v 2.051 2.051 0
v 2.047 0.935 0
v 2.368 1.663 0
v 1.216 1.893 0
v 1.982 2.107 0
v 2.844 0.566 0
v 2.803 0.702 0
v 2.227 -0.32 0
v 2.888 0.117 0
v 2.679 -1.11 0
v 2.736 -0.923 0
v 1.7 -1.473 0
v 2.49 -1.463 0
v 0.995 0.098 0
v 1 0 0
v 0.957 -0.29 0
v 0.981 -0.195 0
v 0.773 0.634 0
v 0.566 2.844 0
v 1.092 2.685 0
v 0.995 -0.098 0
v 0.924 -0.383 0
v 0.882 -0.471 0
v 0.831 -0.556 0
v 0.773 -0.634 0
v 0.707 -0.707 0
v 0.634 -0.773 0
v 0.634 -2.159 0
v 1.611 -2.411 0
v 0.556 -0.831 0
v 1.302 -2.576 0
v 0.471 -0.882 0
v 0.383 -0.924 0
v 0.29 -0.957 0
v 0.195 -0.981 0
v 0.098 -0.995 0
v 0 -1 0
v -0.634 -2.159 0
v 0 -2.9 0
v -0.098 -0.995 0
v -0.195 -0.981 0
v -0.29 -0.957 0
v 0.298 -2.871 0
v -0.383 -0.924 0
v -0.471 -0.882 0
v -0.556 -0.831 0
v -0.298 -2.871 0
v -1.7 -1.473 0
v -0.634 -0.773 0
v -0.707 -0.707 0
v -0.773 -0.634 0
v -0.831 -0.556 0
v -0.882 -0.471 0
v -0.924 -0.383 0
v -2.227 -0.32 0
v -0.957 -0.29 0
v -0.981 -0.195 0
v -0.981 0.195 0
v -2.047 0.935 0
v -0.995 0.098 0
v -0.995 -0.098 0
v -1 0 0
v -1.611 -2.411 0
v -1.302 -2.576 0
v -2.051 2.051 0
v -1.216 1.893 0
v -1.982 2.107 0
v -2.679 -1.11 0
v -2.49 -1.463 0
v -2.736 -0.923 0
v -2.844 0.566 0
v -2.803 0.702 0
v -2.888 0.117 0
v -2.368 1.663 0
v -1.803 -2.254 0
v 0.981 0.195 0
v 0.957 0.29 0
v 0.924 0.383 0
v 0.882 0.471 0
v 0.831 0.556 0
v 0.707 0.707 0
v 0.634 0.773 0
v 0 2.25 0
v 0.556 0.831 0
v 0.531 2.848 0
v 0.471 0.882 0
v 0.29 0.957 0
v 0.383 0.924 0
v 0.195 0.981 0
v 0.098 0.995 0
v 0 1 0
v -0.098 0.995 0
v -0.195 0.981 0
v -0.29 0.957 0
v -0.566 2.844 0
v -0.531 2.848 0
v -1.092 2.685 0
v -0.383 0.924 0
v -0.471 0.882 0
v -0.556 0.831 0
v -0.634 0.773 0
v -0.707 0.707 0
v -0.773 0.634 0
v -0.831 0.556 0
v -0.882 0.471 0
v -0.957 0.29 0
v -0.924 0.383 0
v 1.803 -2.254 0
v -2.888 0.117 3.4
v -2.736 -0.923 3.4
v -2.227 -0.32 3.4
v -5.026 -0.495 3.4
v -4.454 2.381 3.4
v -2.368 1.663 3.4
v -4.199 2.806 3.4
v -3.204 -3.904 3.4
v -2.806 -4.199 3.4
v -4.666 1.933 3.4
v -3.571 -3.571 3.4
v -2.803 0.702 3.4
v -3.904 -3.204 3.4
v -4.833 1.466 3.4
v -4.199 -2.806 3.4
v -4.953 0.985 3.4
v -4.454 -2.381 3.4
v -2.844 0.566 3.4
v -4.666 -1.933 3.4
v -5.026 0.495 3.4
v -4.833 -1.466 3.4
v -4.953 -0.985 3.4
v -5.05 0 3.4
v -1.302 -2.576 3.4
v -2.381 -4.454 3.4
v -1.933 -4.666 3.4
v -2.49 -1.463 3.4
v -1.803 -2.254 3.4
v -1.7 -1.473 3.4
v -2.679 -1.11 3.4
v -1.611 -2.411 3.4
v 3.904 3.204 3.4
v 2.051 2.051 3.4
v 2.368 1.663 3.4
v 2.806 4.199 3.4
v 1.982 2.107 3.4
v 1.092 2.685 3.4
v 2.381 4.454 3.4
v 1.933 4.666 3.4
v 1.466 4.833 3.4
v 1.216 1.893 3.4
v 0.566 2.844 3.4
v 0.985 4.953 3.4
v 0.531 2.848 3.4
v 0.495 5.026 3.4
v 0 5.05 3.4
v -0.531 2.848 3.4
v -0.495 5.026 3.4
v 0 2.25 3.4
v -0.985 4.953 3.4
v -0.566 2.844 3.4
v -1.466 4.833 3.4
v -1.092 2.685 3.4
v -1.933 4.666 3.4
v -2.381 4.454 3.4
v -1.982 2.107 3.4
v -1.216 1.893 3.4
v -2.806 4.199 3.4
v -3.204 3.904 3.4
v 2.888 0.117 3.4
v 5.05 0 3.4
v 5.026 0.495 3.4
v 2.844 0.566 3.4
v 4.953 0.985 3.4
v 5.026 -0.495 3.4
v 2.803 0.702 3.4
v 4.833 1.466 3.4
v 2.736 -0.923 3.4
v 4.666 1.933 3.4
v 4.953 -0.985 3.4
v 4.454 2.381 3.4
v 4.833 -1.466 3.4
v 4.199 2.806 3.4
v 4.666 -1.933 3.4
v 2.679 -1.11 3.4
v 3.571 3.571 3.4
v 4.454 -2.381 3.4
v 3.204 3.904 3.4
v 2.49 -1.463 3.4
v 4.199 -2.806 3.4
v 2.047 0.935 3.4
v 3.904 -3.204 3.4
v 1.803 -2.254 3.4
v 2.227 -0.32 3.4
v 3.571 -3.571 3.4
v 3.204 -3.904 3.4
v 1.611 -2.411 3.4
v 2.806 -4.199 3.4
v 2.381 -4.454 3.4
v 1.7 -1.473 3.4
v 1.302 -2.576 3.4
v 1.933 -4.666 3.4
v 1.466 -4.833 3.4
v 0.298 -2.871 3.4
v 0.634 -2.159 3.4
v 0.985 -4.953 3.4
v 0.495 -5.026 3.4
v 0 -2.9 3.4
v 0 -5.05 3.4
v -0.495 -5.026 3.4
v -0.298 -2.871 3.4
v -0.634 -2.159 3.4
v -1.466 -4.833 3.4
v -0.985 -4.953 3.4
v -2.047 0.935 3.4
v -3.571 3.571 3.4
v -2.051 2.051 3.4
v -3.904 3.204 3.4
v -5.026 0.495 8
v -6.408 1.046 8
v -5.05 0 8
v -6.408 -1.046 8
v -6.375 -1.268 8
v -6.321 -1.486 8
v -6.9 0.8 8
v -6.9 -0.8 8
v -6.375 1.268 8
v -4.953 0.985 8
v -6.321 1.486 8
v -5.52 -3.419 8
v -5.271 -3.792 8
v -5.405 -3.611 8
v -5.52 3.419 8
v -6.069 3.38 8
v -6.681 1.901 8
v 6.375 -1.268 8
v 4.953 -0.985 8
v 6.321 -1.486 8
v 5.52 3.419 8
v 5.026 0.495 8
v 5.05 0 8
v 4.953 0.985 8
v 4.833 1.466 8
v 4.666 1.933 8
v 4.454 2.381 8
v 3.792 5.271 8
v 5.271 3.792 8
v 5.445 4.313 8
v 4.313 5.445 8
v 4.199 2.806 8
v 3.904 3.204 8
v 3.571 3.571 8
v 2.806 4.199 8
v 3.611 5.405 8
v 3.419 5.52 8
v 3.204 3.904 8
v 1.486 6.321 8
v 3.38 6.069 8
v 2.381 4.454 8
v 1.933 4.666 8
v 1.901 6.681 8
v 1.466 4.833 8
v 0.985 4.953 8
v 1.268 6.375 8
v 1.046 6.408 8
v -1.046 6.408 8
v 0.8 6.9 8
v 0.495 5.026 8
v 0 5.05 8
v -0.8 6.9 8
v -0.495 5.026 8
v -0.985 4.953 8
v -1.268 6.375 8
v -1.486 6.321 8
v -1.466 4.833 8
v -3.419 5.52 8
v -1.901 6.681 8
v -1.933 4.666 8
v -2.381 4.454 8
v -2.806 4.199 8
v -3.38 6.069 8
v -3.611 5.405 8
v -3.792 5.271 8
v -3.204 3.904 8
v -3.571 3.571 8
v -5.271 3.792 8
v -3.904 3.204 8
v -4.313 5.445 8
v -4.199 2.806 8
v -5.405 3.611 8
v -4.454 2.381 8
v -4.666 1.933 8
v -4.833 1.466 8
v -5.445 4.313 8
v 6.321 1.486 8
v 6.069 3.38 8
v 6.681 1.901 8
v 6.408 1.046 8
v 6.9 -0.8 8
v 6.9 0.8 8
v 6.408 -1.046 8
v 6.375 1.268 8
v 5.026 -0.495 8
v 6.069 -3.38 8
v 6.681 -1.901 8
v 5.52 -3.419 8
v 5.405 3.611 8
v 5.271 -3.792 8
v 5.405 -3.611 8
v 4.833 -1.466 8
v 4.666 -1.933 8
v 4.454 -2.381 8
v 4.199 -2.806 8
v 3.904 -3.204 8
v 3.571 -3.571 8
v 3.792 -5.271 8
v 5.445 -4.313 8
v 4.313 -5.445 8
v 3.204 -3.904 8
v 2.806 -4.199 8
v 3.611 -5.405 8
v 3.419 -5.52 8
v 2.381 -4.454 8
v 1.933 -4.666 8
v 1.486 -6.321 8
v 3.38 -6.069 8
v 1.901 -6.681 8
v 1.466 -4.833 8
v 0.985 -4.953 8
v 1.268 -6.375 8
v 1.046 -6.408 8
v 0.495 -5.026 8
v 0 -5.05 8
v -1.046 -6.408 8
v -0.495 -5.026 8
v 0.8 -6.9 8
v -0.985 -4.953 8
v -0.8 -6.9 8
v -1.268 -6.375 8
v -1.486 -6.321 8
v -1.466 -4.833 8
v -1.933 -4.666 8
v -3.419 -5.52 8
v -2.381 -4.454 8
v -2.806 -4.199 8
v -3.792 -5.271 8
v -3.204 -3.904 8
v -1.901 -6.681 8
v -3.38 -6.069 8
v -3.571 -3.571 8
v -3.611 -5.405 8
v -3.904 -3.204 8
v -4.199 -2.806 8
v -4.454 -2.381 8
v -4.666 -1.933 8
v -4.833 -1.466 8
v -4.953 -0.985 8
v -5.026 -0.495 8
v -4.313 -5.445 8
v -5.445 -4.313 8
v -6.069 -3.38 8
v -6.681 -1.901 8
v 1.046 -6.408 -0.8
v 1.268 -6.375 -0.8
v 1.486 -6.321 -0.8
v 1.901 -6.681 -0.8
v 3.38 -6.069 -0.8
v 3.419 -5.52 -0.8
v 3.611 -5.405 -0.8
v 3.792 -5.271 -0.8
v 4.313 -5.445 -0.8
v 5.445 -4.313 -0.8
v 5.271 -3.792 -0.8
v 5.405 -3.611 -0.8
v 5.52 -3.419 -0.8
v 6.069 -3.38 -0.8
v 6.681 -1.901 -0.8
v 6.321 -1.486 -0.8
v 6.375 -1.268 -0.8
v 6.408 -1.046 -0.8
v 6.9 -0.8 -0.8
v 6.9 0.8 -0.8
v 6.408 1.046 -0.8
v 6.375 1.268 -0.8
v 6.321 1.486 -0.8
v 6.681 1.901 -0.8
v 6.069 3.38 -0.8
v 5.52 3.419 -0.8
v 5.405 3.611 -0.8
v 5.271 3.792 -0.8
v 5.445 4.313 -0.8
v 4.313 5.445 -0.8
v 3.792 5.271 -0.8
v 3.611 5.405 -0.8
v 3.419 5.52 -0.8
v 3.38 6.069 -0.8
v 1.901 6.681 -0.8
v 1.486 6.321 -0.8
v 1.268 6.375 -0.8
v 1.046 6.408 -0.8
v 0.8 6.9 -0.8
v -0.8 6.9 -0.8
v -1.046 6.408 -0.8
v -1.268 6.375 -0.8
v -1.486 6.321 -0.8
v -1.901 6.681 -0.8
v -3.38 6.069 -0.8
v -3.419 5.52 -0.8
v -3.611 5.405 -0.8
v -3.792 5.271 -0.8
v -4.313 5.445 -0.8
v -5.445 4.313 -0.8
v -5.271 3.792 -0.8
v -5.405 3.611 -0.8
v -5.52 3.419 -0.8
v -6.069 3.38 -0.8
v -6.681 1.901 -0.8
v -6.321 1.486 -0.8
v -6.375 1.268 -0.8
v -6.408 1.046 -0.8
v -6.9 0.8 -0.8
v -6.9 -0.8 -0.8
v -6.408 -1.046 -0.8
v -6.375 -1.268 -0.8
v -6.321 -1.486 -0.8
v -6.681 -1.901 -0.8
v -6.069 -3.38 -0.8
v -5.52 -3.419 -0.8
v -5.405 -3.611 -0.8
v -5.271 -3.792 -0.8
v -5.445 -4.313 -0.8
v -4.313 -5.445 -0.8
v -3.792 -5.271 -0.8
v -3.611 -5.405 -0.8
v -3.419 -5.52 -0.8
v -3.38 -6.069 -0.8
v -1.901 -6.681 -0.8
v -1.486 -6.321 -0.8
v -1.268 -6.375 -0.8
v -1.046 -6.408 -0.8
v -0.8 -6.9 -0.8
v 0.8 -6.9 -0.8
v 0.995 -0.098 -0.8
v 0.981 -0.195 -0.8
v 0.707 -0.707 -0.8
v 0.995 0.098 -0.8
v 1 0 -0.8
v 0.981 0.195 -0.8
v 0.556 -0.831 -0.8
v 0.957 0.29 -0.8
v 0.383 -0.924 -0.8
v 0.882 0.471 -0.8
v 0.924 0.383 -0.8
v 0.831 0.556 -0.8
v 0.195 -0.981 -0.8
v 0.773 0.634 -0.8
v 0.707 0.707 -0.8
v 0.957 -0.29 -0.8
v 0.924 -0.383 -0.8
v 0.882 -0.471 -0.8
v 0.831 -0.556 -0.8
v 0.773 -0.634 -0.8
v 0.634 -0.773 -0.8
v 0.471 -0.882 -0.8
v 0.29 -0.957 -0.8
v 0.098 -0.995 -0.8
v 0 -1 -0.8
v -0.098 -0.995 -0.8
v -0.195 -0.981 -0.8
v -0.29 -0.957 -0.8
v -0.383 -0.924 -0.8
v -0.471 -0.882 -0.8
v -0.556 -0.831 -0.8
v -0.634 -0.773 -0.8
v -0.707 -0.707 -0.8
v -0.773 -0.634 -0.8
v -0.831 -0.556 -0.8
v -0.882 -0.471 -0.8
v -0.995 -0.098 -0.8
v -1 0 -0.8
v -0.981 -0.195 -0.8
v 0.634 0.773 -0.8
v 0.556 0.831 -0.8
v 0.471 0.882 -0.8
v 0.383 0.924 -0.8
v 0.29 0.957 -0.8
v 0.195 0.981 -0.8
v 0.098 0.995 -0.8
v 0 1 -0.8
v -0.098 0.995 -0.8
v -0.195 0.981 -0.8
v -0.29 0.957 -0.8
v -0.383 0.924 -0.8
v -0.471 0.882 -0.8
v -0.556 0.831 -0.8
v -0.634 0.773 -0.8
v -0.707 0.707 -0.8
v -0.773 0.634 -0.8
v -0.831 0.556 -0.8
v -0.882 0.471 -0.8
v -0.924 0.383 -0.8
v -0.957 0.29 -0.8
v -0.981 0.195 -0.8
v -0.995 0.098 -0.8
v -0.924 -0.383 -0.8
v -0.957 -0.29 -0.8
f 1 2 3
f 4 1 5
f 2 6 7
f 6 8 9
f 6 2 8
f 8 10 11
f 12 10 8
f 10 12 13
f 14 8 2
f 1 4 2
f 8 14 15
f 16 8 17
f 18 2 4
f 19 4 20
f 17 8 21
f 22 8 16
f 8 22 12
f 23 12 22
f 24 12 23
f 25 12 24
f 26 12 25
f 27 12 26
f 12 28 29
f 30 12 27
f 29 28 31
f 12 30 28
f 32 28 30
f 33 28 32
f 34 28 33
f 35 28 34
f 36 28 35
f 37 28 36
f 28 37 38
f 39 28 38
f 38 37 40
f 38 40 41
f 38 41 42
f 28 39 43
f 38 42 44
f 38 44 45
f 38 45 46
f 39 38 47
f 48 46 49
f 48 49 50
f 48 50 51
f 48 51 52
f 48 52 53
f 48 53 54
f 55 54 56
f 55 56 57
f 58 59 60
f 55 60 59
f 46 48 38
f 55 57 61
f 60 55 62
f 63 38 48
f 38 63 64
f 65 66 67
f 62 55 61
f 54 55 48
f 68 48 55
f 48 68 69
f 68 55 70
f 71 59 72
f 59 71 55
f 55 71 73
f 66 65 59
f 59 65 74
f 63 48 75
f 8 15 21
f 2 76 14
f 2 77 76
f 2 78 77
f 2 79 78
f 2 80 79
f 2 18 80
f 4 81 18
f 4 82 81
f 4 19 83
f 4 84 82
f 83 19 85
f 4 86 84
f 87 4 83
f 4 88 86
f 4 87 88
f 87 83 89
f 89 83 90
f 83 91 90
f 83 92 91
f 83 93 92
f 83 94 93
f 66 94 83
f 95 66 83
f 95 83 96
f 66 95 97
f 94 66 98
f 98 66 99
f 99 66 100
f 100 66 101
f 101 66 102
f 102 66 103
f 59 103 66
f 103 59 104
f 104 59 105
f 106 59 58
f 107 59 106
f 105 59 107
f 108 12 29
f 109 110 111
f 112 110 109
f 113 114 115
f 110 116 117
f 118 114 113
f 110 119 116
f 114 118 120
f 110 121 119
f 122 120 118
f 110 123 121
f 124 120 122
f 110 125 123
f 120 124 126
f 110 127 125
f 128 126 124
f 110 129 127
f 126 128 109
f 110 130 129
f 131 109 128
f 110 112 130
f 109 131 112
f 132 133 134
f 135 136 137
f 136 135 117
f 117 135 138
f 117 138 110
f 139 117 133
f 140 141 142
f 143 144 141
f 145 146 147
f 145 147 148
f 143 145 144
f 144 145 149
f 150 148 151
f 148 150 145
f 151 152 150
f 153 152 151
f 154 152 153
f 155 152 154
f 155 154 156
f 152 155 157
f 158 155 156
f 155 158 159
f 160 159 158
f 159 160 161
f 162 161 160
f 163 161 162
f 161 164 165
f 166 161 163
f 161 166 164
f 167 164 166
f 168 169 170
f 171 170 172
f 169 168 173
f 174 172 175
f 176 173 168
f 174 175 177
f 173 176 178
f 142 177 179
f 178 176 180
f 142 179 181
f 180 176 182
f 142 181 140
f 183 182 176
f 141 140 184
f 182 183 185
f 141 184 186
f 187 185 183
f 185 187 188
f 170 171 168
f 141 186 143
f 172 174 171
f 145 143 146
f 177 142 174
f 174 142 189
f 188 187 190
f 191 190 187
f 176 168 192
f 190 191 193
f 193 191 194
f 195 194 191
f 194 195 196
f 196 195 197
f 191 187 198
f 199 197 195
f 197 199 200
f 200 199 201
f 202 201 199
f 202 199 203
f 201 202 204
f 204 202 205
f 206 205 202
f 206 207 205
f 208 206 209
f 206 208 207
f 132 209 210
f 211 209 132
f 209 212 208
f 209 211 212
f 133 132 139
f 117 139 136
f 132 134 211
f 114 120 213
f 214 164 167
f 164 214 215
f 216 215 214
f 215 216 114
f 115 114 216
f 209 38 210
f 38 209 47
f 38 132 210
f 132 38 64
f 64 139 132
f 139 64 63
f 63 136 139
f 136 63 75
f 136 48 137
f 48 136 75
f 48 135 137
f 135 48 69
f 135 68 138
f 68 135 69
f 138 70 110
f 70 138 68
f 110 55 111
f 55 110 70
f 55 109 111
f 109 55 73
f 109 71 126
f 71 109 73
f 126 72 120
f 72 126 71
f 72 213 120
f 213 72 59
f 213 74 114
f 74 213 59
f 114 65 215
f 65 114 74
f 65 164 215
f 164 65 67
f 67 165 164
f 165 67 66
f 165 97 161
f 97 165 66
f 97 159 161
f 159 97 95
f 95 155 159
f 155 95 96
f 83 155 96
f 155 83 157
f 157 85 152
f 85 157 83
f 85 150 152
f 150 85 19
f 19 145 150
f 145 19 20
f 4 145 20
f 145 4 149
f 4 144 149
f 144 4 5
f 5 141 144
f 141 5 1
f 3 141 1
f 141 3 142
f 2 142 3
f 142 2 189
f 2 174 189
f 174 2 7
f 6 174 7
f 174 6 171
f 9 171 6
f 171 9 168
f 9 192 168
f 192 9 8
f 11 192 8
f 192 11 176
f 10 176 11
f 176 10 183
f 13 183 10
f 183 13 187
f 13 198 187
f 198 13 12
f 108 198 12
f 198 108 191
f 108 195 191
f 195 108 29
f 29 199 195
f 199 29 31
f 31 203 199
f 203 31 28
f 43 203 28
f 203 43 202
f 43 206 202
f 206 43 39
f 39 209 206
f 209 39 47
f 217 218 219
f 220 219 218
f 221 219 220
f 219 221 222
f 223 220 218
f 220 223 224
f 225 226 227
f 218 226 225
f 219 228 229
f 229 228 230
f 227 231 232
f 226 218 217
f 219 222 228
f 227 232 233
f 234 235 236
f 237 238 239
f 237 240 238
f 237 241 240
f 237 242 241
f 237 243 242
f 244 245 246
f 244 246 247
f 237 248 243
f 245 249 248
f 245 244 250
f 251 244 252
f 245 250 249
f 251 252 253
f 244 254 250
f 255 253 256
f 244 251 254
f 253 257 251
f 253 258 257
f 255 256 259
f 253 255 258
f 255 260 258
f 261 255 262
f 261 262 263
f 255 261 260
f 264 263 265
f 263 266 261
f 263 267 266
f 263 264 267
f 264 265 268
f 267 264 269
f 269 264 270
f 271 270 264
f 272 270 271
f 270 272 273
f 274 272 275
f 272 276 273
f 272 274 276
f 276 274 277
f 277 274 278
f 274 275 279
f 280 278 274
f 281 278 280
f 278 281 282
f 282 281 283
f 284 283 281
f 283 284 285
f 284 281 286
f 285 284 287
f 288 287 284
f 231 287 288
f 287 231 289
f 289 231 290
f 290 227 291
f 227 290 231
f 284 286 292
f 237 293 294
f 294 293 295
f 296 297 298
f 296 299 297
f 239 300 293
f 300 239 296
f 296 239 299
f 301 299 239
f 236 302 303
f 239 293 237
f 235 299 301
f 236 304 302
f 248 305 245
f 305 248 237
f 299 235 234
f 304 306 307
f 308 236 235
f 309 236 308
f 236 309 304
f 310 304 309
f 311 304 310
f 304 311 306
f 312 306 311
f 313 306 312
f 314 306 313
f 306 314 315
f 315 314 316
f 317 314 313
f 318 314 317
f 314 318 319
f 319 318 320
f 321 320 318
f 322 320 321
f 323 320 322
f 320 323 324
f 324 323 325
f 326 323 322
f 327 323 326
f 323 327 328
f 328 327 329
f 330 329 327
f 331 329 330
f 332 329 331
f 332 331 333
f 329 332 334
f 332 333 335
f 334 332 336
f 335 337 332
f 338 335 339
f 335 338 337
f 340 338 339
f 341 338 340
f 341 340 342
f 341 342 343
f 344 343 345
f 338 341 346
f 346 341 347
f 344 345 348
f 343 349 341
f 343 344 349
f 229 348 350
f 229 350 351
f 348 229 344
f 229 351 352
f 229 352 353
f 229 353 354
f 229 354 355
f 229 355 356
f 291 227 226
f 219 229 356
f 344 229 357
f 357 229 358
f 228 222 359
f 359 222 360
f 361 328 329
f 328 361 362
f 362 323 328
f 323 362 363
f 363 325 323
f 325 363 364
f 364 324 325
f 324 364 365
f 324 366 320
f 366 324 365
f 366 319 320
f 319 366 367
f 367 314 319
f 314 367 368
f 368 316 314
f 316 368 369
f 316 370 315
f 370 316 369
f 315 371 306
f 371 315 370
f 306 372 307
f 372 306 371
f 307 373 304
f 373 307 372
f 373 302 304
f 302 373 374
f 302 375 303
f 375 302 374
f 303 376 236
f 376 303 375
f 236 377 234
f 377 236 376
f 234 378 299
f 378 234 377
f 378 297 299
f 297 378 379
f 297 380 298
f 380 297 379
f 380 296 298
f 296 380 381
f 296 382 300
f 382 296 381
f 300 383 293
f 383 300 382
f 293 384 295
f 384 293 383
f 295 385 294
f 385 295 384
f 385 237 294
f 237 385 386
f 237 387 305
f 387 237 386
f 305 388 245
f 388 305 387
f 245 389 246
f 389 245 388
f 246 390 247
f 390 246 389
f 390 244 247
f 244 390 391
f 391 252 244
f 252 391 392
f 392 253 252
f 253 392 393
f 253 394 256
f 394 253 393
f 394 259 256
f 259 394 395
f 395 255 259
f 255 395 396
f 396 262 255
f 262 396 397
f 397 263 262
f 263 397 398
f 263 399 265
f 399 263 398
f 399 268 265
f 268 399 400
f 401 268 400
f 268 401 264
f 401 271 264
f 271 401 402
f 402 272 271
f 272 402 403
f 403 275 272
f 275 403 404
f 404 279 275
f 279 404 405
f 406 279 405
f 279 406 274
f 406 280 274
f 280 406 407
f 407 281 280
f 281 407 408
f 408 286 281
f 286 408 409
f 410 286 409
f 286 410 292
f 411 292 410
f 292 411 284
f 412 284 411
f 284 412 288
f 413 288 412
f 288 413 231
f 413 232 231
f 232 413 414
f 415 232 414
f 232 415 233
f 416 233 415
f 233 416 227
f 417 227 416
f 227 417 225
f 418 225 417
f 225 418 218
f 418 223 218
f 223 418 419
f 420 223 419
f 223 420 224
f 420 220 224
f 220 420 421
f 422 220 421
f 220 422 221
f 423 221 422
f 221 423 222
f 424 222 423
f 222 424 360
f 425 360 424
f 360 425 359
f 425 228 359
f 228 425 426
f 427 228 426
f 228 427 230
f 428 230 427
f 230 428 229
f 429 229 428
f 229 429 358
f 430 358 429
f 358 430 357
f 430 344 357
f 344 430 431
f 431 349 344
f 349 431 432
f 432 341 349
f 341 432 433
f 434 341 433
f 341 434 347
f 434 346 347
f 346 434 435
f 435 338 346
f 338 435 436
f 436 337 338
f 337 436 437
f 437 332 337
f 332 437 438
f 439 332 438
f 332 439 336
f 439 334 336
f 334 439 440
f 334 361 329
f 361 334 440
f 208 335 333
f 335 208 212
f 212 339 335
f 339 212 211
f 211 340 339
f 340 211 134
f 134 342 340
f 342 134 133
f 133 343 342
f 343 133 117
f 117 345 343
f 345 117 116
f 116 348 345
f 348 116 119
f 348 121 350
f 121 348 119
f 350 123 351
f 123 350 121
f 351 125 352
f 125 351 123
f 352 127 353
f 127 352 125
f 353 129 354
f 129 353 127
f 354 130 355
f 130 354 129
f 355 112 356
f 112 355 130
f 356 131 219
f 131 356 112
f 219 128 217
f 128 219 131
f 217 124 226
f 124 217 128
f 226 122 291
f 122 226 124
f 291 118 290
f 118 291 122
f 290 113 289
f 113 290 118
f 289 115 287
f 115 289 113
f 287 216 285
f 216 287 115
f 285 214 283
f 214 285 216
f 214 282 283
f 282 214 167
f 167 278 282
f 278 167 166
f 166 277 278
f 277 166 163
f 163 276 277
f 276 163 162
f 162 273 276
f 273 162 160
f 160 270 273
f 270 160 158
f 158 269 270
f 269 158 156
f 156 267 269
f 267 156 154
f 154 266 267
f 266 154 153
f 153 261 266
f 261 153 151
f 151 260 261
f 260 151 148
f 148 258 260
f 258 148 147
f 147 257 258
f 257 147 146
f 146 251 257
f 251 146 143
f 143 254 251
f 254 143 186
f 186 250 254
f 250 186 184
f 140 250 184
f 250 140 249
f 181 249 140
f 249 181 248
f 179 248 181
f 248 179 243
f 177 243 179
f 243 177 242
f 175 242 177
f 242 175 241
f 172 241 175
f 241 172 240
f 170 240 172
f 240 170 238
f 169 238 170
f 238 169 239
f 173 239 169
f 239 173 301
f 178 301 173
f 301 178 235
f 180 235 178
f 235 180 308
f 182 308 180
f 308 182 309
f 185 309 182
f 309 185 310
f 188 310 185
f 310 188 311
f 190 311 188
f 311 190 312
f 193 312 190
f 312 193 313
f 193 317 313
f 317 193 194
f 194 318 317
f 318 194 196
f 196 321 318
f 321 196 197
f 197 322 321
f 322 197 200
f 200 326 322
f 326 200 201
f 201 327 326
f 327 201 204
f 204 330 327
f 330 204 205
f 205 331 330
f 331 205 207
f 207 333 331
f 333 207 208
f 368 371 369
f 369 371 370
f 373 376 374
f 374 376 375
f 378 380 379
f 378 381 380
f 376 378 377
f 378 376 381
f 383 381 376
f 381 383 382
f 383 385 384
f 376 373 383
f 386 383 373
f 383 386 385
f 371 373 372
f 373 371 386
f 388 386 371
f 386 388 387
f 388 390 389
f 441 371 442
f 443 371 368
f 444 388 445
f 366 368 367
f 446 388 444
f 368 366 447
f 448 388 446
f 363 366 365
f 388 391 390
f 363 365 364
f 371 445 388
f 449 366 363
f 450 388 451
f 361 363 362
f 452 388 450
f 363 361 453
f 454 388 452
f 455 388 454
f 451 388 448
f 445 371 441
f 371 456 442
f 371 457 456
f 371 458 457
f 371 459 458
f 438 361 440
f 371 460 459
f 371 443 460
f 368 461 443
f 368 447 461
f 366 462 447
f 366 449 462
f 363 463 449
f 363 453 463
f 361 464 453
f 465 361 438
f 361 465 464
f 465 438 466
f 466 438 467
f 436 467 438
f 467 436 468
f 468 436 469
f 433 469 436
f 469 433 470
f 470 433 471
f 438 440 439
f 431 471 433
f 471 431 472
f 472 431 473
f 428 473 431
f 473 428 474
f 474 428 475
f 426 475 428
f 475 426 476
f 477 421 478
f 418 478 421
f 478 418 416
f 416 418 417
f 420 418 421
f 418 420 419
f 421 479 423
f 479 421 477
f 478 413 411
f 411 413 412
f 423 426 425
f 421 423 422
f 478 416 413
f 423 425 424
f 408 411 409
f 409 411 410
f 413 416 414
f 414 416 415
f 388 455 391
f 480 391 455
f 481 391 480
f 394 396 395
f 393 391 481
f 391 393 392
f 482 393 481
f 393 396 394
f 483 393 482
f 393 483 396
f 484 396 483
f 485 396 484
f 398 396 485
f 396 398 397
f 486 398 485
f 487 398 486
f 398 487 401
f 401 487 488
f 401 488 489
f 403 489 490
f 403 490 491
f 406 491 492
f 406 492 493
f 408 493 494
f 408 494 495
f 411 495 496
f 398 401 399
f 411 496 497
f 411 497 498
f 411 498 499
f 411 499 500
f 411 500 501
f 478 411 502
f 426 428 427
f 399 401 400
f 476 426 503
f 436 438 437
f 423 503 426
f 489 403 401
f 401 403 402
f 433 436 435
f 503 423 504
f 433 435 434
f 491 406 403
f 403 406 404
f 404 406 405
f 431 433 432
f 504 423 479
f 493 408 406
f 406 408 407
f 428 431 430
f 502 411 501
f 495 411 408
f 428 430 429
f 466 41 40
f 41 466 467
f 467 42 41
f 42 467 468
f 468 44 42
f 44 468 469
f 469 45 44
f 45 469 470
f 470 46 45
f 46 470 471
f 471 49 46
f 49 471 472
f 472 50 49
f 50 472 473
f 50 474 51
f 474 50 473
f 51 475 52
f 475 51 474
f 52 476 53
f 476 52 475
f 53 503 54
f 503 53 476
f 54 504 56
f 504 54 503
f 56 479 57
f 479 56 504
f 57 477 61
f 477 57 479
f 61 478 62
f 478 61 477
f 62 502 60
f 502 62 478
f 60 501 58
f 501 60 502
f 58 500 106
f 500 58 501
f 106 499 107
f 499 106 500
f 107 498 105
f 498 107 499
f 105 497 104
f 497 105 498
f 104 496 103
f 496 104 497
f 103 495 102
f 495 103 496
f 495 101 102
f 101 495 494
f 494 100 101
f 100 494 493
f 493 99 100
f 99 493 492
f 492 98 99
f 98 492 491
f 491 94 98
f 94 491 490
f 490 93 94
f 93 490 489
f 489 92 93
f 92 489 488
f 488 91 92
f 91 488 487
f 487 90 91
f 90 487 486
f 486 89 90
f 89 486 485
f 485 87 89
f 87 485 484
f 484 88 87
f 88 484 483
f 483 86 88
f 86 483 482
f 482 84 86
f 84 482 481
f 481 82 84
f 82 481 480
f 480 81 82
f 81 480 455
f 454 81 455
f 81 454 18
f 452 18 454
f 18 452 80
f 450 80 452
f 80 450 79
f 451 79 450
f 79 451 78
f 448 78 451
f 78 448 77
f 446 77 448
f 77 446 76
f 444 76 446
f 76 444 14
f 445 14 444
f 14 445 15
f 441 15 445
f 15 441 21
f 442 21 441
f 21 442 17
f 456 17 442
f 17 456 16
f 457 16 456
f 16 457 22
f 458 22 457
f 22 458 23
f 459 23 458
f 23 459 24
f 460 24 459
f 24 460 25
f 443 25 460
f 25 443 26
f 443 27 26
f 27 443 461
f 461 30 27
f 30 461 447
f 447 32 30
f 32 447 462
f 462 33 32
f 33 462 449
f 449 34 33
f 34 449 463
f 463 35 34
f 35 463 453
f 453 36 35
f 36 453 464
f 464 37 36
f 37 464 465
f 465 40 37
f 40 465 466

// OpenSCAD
B = 1.6;
HB = B / 2;
DSTEP = 360 / 11;
OD = 13;

linear_extrude(3.4) {
  for (i = [0 : 1 : 10]) {
    rotate([0, 0, DSTEP * i])
      translate([0, 1.65, 0])
        polygon([
          [0, 0.2],
          [0, 0.6],
          [HB, 1.5],
          [-HB, 1.5],
          [0, 0.6],
          [0, 0.2]
        ]);
  }

  difference() {
    $fn = 32;
    
    circle(d = OD);
    circle(d = 5.8);    
  }
}

module tread() { 
  for (i = [0 : 1 : 15]) {
    rotate([0, 0, i * 360 / 16])
      translate([0, OD / 2 - 0.8, 0])
        polygon([
          [1.4, 0],
          [0.8, 1.2],
          [-0.8, 1.2],
          [-1.4, 0]
        ]);
  }
}

linear_extrude(8) {
  tread();
 
  difference() {
    $fn = 64;
    
    circle(d = OD);
    circle(d = 10.1);    
  }
}

translate([0, 0, -0.8])
linear_extrude(0.8) {
  tread();
 
  $fn = 64;
    
  difference() {
    $fn = 64;
    
    circle(d = OD);
    circle(d = 2);    
  }
}
